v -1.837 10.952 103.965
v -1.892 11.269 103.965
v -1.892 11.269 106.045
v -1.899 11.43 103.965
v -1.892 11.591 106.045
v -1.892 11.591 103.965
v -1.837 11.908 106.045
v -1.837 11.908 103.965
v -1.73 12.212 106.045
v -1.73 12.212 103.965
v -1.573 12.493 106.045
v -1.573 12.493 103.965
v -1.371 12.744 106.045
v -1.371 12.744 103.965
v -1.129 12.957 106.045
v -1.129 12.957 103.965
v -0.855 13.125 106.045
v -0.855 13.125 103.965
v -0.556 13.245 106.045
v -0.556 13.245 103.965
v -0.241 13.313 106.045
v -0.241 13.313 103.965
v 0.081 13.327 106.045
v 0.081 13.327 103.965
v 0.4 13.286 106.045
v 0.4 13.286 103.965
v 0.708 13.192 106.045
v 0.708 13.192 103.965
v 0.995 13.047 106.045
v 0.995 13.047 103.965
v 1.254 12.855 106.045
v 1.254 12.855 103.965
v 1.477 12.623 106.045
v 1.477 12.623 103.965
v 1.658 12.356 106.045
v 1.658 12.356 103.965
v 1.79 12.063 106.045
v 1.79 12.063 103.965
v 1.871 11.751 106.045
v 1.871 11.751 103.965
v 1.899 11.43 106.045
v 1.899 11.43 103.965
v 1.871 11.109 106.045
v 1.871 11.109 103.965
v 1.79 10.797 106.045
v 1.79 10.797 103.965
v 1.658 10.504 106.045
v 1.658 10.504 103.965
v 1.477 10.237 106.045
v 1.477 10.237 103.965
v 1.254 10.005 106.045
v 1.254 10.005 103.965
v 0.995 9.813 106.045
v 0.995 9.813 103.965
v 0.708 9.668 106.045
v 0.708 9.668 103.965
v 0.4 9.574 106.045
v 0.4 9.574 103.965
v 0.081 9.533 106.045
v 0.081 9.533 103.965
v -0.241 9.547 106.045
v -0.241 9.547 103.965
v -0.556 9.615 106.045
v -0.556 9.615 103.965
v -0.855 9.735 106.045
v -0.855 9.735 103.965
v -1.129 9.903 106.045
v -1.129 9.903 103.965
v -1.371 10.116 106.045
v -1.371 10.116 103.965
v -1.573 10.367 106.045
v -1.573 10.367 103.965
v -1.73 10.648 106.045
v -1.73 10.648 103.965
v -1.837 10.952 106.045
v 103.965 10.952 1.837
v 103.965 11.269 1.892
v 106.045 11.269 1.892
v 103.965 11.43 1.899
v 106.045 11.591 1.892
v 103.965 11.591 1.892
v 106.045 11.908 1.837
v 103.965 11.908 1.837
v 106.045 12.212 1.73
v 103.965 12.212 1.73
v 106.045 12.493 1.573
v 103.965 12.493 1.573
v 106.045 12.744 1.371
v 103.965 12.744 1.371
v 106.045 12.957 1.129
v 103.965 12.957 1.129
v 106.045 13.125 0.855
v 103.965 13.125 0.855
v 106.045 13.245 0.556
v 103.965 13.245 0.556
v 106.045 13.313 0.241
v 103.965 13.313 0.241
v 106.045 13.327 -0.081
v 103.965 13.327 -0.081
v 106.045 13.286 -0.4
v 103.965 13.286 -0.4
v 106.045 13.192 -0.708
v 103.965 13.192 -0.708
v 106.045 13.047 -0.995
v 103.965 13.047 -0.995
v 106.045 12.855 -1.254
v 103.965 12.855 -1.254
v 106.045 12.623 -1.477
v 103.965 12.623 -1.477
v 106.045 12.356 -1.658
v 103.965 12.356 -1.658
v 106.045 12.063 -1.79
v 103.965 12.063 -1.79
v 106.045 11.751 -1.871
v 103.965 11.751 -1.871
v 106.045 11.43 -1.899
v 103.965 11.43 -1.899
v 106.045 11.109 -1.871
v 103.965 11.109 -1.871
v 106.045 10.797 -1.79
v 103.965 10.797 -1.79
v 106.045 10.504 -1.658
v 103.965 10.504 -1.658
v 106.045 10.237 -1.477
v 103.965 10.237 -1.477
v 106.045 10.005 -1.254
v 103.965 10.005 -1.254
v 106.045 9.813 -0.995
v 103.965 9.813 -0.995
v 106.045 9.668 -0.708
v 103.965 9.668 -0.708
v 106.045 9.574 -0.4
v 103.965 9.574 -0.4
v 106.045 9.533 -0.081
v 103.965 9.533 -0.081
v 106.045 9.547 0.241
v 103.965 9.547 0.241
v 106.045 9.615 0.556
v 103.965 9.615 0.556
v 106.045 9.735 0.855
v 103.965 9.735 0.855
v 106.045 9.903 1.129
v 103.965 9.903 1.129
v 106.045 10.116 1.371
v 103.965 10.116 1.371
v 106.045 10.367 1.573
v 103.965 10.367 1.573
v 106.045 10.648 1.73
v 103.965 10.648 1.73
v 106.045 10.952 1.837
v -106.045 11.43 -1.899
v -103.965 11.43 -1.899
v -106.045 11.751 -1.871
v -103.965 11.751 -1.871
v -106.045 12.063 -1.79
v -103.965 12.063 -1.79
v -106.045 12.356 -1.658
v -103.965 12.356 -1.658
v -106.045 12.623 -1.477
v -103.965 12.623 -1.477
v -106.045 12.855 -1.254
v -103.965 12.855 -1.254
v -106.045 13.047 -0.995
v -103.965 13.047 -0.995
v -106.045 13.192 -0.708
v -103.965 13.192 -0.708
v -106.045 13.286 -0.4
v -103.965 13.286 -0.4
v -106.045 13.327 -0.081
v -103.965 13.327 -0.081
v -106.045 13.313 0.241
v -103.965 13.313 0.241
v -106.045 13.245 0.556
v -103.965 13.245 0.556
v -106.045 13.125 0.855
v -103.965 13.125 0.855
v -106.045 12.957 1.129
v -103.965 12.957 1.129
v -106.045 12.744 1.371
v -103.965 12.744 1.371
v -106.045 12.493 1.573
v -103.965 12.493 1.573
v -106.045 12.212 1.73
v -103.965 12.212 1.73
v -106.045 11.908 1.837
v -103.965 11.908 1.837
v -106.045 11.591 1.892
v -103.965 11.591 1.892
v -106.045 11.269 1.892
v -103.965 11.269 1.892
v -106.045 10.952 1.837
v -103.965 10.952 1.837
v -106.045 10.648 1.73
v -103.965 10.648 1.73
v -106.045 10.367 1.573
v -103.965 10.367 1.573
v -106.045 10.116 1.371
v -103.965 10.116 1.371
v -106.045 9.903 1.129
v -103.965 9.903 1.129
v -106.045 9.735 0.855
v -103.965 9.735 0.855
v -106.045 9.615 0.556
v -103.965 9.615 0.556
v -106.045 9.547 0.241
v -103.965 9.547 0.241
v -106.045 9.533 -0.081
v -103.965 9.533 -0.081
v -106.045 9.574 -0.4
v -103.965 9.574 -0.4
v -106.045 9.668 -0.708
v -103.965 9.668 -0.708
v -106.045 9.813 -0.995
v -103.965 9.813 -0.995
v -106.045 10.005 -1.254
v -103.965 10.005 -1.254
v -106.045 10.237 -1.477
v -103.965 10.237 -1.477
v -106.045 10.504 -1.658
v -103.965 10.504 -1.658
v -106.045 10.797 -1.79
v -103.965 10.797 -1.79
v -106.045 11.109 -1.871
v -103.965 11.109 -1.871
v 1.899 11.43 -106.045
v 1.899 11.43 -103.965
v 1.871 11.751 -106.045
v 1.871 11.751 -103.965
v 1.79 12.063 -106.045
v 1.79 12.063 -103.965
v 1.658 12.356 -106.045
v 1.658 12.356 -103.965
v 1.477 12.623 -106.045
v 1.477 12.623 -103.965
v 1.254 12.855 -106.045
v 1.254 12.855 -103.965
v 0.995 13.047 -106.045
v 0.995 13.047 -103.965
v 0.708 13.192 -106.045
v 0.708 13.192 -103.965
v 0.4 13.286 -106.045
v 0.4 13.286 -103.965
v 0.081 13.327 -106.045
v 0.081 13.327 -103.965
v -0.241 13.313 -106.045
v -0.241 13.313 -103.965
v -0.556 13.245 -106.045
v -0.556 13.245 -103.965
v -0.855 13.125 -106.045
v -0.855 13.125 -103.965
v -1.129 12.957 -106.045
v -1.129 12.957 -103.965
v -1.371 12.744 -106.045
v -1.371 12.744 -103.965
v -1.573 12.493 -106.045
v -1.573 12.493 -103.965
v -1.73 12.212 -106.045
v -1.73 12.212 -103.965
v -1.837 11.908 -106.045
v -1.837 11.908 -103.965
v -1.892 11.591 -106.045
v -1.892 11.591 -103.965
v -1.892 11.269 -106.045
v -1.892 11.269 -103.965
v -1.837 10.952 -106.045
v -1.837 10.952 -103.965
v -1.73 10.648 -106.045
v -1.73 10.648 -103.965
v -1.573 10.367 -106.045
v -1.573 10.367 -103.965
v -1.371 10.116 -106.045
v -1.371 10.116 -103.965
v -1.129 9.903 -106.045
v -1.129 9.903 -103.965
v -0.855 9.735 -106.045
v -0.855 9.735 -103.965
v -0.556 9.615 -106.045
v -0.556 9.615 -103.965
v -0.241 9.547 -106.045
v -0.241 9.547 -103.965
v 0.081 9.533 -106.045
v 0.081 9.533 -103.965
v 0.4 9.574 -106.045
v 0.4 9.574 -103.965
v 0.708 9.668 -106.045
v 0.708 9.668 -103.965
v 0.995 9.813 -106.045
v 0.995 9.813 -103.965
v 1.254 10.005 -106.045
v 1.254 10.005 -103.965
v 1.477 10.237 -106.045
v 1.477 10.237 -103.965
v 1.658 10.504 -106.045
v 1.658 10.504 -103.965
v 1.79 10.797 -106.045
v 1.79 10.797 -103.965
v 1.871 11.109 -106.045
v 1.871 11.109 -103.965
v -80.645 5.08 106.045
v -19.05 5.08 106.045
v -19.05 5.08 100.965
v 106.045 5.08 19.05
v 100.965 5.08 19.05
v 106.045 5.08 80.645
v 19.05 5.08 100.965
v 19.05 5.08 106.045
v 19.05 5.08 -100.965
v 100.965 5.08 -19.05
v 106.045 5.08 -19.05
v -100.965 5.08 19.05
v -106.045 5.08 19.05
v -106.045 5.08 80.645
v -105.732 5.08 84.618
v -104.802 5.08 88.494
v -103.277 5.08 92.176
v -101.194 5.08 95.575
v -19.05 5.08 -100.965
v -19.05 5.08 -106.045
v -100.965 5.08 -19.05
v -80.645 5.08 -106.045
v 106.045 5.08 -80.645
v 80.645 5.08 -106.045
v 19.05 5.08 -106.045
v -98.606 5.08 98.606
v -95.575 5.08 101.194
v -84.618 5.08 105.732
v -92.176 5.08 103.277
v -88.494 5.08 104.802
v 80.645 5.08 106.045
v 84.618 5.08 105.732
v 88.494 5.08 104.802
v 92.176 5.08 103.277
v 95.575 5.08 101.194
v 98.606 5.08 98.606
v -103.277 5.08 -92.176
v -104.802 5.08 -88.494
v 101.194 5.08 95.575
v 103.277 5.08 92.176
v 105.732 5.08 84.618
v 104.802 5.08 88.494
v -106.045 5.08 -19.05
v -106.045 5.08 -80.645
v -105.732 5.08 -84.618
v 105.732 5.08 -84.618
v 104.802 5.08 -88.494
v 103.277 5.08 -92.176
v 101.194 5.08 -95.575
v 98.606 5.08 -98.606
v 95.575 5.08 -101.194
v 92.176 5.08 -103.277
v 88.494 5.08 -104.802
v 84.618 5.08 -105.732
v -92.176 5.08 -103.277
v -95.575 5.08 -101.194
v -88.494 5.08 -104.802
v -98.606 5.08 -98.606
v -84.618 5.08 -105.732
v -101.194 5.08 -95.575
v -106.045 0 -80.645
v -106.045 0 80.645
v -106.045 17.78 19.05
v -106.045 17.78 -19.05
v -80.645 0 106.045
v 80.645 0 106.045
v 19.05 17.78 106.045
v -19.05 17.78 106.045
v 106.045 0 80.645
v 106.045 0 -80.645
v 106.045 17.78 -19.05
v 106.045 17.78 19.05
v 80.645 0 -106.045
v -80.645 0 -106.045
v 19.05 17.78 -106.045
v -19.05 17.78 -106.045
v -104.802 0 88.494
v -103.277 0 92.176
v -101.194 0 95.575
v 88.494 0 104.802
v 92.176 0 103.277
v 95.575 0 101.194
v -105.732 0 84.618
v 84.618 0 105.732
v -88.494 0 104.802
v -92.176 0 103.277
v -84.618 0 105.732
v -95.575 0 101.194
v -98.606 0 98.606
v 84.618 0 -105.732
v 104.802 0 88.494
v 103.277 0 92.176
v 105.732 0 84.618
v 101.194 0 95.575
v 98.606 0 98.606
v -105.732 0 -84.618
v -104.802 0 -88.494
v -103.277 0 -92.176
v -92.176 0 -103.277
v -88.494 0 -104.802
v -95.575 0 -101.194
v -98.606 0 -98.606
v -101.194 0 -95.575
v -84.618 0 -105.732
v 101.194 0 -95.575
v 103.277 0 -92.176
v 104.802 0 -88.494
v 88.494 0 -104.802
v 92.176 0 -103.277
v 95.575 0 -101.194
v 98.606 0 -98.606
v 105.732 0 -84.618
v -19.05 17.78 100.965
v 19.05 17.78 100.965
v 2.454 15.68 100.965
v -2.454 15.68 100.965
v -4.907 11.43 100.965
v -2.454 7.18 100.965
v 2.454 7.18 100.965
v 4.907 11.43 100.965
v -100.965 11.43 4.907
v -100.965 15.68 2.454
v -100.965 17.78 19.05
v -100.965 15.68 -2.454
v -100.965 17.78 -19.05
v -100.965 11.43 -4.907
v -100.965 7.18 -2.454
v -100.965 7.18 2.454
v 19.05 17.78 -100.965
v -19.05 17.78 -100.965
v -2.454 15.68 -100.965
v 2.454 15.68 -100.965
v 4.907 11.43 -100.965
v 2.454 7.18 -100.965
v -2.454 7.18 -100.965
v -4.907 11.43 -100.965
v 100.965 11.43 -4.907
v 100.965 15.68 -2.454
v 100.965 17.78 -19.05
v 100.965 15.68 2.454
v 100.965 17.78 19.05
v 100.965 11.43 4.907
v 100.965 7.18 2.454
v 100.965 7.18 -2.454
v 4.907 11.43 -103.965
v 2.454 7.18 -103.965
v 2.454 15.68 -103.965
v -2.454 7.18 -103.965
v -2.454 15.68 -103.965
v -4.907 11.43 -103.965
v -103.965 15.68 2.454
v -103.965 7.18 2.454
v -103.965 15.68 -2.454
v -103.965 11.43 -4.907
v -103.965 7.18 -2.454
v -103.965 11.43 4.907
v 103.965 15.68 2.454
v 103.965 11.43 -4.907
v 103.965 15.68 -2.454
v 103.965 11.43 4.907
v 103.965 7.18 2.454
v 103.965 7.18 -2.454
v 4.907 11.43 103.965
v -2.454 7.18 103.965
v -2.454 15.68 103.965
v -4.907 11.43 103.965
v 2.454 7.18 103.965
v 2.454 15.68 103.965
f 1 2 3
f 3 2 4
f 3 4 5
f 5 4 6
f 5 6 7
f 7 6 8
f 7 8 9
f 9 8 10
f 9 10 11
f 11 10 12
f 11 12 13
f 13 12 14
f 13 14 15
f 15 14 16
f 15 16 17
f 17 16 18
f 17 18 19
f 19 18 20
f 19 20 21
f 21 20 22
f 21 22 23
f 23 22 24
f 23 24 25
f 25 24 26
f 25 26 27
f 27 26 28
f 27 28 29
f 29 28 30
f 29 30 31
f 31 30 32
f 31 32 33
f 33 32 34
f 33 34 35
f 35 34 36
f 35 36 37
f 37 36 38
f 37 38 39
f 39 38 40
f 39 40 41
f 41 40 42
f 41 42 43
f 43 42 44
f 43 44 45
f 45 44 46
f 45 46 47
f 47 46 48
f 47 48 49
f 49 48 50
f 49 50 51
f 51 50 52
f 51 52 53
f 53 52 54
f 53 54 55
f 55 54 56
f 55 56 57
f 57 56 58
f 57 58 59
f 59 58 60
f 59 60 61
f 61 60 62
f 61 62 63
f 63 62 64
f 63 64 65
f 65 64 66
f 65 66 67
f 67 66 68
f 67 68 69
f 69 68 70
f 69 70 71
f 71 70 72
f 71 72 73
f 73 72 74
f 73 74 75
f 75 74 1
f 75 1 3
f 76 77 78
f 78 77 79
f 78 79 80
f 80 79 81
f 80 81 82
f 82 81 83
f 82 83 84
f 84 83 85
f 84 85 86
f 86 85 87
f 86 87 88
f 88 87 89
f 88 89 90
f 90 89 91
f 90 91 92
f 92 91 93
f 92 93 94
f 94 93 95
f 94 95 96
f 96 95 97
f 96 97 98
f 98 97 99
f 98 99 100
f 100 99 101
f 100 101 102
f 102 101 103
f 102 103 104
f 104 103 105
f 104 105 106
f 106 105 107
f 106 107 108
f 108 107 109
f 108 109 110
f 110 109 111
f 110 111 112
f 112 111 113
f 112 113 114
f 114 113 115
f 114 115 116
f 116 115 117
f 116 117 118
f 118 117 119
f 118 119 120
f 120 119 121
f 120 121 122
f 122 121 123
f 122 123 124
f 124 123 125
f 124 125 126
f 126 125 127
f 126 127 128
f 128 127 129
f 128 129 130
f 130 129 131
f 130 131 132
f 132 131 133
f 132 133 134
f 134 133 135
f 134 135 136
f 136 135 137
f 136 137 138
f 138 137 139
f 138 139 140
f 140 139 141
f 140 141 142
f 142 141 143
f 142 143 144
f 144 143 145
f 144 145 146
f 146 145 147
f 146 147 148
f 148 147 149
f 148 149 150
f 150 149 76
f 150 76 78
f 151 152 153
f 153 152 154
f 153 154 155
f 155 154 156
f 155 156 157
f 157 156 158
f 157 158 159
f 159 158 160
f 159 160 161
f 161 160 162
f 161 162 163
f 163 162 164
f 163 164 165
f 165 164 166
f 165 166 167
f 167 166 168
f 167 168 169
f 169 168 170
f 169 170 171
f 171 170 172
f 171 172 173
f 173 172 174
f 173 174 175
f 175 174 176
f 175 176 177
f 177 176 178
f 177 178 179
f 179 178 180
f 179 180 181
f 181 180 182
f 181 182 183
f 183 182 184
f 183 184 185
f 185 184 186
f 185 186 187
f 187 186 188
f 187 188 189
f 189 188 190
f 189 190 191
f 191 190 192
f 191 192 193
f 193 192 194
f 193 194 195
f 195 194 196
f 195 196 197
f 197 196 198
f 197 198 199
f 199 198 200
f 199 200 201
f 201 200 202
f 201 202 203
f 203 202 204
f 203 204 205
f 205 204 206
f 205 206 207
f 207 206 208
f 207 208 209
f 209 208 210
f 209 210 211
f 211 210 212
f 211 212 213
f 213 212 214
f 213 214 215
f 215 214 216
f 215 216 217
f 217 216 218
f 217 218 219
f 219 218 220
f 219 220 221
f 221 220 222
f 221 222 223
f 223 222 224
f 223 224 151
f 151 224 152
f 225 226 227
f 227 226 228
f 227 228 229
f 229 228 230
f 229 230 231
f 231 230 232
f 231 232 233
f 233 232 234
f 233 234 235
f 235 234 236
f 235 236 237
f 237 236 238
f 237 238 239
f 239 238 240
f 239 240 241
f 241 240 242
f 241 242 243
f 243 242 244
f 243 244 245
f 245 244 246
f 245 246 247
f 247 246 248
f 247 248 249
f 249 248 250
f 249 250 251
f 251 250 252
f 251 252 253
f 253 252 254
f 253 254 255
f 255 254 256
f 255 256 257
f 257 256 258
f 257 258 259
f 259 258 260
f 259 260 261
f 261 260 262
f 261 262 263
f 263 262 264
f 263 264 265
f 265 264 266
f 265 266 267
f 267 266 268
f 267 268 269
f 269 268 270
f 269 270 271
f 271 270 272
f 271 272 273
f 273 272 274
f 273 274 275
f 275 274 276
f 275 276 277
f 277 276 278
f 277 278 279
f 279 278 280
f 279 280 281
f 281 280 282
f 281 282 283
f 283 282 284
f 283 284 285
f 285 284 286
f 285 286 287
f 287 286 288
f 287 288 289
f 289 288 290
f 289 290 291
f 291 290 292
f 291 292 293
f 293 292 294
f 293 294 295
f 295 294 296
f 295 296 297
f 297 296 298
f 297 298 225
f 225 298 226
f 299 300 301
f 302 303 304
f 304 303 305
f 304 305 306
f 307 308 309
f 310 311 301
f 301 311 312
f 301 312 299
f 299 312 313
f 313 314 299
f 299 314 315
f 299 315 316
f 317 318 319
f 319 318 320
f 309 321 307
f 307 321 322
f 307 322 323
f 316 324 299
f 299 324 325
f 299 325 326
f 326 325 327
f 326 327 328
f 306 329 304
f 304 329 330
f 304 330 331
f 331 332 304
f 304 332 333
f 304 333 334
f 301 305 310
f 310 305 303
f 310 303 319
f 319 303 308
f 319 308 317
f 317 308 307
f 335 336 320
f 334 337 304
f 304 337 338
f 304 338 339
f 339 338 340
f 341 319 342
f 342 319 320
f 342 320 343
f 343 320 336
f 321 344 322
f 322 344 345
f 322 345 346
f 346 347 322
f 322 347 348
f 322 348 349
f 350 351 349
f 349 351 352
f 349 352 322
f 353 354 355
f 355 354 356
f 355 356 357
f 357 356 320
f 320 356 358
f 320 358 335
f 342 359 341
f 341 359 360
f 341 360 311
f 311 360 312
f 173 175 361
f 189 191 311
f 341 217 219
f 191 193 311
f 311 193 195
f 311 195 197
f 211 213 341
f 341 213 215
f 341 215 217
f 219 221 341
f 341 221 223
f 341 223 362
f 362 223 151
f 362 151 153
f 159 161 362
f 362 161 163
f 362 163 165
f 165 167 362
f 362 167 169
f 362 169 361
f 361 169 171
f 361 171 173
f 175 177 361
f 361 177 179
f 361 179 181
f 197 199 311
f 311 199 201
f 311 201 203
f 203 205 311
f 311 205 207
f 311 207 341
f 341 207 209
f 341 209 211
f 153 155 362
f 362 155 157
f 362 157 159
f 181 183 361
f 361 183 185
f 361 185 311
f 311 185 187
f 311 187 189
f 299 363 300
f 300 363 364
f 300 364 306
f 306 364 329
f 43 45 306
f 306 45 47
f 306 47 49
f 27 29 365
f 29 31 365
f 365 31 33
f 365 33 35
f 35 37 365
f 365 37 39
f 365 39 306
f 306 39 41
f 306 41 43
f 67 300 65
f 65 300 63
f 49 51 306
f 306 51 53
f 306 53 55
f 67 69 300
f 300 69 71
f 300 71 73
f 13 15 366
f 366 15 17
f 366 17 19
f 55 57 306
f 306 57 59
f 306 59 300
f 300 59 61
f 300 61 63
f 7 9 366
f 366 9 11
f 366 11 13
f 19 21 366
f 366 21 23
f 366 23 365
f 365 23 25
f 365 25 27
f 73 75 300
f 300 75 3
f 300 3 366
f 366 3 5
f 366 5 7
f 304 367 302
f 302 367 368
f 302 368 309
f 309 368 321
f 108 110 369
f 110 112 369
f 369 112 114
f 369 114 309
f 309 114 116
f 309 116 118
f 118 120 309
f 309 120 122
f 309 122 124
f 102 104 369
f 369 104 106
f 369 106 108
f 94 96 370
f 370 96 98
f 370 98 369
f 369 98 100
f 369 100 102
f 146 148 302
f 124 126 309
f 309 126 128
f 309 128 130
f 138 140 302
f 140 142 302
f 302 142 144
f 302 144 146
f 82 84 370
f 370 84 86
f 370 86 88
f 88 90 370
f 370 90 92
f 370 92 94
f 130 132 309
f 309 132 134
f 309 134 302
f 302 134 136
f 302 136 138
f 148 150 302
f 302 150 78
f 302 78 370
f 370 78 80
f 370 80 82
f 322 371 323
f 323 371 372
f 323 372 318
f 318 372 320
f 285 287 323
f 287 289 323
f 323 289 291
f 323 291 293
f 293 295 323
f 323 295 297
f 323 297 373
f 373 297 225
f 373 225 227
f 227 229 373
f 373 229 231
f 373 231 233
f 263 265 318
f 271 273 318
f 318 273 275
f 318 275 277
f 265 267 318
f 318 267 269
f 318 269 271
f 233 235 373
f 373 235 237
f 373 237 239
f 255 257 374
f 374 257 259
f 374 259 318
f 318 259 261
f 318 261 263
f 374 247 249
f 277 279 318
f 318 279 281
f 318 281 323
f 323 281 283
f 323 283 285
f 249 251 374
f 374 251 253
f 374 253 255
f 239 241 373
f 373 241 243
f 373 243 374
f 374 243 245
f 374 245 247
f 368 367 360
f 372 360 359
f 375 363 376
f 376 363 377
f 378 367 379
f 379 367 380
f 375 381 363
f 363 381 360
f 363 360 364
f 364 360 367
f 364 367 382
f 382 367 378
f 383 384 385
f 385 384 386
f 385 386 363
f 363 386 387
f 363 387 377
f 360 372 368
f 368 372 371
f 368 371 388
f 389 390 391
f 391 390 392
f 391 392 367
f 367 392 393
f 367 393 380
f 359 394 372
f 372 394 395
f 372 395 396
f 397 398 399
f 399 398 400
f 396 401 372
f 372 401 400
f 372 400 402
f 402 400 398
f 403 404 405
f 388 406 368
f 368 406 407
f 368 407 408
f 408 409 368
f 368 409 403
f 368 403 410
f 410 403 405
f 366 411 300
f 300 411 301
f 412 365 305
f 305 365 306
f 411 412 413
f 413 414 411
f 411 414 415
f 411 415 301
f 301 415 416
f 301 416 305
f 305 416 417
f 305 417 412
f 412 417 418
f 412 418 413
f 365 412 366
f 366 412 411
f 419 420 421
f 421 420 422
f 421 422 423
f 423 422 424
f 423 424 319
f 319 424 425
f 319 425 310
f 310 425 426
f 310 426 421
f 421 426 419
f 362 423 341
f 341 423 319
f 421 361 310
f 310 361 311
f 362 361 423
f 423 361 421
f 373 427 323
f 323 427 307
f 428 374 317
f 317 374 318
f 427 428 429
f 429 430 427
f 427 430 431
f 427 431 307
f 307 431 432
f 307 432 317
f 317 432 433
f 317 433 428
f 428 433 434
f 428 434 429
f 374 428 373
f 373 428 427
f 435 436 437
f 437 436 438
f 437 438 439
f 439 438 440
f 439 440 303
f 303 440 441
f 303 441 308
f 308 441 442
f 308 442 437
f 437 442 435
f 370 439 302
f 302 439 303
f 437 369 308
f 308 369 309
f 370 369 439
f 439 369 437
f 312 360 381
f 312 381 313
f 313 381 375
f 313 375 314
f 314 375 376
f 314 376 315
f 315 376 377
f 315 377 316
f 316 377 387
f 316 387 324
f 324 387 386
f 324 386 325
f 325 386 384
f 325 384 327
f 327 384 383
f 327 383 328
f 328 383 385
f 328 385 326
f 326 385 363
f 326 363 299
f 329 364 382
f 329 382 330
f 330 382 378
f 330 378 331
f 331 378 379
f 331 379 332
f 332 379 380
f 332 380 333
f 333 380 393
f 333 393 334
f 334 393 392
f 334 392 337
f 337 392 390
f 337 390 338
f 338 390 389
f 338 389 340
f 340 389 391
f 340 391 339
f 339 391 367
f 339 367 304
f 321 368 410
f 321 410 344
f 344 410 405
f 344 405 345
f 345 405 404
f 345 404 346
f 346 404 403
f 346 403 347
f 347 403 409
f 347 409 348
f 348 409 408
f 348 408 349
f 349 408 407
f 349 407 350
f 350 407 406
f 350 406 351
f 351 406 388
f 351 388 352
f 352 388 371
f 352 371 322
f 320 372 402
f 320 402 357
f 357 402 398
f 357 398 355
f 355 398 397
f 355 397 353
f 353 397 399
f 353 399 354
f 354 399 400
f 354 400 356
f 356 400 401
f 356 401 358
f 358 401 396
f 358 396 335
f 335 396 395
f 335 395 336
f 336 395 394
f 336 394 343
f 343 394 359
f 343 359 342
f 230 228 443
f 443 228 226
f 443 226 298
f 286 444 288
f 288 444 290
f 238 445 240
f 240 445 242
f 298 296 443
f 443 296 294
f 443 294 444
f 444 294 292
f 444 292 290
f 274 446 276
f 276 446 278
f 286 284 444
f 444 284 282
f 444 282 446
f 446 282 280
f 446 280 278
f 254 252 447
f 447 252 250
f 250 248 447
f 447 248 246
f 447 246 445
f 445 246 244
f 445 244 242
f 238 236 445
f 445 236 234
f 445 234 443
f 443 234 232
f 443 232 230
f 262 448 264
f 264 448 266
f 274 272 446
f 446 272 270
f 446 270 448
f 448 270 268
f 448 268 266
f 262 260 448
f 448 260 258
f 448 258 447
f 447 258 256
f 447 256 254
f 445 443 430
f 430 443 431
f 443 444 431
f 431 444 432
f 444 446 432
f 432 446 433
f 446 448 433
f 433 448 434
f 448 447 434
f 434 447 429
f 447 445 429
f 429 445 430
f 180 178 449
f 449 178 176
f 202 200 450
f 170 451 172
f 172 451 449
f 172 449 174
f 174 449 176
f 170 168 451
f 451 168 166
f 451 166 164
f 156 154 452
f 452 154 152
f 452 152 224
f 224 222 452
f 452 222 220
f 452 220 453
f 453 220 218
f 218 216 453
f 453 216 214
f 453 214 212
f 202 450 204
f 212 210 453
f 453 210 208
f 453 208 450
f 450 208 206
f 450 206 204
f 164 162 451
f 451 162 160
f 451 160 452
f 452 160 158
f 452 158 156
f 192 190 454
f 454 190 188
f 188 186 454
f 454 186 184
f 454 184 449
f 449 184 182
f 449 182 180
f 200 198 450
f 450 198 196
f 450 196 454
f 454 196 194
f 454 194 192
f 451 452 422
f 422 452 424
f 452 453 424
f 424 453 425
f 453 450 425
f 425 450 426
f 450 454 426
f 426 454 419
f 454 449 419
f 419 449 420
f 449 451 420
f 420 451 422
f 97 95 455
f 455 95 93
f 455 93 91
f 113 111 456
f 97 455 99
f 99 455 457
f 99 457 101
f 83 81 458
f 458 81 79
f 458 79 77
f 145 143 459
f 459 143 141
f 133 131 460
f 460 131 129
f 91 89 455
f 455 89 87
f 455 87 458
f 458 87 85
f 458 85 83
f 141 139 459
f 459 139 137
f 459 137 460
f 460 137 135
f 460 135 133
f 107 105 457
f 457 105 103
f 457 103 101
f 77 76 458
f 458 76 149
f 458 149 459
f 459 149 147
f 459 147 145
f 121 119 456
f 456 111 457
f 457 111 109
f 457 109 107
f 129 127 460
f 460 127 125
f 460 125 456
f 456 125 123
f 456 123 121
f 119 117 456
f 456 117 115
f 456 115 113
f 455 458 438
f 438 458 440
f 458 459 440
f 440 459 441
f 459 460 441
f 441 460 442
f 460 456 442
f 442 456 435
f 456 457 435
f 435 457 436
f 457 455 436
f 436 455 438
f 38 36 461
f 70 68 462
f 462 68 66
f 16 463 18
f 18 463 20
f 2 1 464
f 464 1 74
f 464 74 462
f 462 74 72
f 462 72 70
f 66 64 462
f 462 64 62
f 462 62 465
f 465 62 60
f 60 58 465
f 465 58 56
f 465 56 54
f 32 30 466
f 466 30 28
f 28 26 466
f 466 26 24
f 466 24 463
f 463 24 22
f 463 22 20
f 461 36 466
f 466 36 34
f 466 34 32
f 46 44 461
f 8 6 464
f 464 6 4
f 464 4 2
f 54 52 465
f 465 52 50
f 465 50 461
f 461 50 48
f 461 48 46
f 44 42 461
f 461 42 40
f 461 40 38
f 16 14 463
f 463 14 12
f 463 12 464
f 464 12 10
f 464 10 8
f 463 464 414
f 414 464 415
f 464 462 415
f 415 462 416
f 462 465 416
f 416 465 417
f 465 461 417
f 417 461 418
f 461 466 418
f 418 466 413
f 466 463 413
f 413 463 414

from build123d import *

# Parameters (mm, degrees)
ESQUISSE1_W                  = 212.09
ESQUISSE1_H                  = 212.09
BOSS_EXTRU_1_DEPTH           = 5.08
ESQUISSE2_W                  = 38.1
ESQUISSE2_H                  = 5.08
ESQUISSE2_W_2                = 5.08
ESQUISSE2_H_2                = 38.1
BOSS_EXTRU_2_DEPTH           = 12.7
CONG_1_R                     = 25.4
D_GAGEMENT_61_D              = 3.7973
ENL_V_MAT_EXTRU_1_DEPTH      = 3
R_P_TITION_CIRCULAIRE1_COUNT = 4


with BuildPart() as part:
    # Esquisse1 → Boss.-Extru.1 (new body)
    with BuildSketch(Plane(origin=(0, 0, 0), x_dir=(1, 0, 0), z_dir=(0, 1, 0))):
        Rectangle(ESQUISSE1_W, ESQUISSE1_H)
    extrude(amount=BOSS_EXTRU_1_DEPTH)

    # Esquisse2 → Boss.-Extru.2 (add)
    with BuildSketch(Plane(origin=(0, 5.08, 0), x_dir=(1, 0, 0), z_dir=(0, 1, 0))):
        with Locations((0, -103.505)):
            Rectangle(ESQUISSE2_W, ESQUISSE2_H)
        with Locations((-103.505, 0)):
            Rectangle(ESQUISSE2_W_2, ESQUISSE2_H_2)
        with Locations((0, 103.505)):
            Rectangle(ESQUISSE2_W, ESQUISSE2_H)
        with Locations((103.505, 0)):
            Rectangle(ESQUISSE2_W_2, ESQUISSE2_H_2)
    extrude(amount=BOSS_EXTRU_2_DEPTH)

    # Congé1
    cong_1_edges = [part.edges().sort_by_distance(p)[0] for p in [
        (-106.045, 2.54, -106.045),
        (106.045, 2.54, -106.045),
        (106.045, 2.54, 106.045),
        (-106.045, 2.54, 106.045),
    ]]
    fillet(cong_1_edges, radius=CONG_1_R)

    # Dégagement #61 (through all)
    with Locations(Plane.XY.offset(106.045)):
        with Locations((0, 11.43)):
            d_gagement_61 = Hole(D_GAGEMENT_61_D / 2)

    # Esquisse5 → Enlèv. mat.-Extru.1 (cut)
    with BuildSketch(Plane.XY.offset(-100.965)):
        Polygon((2.453738644, 15.68), (-2.453738644, 15.68), (-4.907477288, 11.43), (-2.453738644, 7.18), (2.453738644, 7.18), (4.907477288, 11.43), align=None)
    enl_v_mat_extru_1 = extrude(amount=-ENL_V_MAT_EXTRU_1_DEPTH, mode=Mode.SUBTRACT)

    # Répétition circulaire1: Dégagement #61, Enlèv. mat.-Extru.1 ×4 about axis
    r_p_tition_circulaire1_axis = Axis((0, 0, 0), (0, 1, 0))
    add([d_gagement_61.rotate(r_p_tition_circulaire1_axis, i * 360 / R_P_TITION_CIRCULAIRE1_COUNT) for i in range(1, R_P_TITION_CIRCULAIRE1_COUNT)], mode=Mode.SUBTRACT)
    add([enl_v_mat_extru_1.rotate(r_p_tition_circulaire1_axis, i * 360 / R_P_TITION_CIRCULAIRE1_COUNT) for i in range(1, R_P_TITION_CIRCULAIRE1_COUNT)], mode=Mode.SUBTRACT)


solid = part.part
